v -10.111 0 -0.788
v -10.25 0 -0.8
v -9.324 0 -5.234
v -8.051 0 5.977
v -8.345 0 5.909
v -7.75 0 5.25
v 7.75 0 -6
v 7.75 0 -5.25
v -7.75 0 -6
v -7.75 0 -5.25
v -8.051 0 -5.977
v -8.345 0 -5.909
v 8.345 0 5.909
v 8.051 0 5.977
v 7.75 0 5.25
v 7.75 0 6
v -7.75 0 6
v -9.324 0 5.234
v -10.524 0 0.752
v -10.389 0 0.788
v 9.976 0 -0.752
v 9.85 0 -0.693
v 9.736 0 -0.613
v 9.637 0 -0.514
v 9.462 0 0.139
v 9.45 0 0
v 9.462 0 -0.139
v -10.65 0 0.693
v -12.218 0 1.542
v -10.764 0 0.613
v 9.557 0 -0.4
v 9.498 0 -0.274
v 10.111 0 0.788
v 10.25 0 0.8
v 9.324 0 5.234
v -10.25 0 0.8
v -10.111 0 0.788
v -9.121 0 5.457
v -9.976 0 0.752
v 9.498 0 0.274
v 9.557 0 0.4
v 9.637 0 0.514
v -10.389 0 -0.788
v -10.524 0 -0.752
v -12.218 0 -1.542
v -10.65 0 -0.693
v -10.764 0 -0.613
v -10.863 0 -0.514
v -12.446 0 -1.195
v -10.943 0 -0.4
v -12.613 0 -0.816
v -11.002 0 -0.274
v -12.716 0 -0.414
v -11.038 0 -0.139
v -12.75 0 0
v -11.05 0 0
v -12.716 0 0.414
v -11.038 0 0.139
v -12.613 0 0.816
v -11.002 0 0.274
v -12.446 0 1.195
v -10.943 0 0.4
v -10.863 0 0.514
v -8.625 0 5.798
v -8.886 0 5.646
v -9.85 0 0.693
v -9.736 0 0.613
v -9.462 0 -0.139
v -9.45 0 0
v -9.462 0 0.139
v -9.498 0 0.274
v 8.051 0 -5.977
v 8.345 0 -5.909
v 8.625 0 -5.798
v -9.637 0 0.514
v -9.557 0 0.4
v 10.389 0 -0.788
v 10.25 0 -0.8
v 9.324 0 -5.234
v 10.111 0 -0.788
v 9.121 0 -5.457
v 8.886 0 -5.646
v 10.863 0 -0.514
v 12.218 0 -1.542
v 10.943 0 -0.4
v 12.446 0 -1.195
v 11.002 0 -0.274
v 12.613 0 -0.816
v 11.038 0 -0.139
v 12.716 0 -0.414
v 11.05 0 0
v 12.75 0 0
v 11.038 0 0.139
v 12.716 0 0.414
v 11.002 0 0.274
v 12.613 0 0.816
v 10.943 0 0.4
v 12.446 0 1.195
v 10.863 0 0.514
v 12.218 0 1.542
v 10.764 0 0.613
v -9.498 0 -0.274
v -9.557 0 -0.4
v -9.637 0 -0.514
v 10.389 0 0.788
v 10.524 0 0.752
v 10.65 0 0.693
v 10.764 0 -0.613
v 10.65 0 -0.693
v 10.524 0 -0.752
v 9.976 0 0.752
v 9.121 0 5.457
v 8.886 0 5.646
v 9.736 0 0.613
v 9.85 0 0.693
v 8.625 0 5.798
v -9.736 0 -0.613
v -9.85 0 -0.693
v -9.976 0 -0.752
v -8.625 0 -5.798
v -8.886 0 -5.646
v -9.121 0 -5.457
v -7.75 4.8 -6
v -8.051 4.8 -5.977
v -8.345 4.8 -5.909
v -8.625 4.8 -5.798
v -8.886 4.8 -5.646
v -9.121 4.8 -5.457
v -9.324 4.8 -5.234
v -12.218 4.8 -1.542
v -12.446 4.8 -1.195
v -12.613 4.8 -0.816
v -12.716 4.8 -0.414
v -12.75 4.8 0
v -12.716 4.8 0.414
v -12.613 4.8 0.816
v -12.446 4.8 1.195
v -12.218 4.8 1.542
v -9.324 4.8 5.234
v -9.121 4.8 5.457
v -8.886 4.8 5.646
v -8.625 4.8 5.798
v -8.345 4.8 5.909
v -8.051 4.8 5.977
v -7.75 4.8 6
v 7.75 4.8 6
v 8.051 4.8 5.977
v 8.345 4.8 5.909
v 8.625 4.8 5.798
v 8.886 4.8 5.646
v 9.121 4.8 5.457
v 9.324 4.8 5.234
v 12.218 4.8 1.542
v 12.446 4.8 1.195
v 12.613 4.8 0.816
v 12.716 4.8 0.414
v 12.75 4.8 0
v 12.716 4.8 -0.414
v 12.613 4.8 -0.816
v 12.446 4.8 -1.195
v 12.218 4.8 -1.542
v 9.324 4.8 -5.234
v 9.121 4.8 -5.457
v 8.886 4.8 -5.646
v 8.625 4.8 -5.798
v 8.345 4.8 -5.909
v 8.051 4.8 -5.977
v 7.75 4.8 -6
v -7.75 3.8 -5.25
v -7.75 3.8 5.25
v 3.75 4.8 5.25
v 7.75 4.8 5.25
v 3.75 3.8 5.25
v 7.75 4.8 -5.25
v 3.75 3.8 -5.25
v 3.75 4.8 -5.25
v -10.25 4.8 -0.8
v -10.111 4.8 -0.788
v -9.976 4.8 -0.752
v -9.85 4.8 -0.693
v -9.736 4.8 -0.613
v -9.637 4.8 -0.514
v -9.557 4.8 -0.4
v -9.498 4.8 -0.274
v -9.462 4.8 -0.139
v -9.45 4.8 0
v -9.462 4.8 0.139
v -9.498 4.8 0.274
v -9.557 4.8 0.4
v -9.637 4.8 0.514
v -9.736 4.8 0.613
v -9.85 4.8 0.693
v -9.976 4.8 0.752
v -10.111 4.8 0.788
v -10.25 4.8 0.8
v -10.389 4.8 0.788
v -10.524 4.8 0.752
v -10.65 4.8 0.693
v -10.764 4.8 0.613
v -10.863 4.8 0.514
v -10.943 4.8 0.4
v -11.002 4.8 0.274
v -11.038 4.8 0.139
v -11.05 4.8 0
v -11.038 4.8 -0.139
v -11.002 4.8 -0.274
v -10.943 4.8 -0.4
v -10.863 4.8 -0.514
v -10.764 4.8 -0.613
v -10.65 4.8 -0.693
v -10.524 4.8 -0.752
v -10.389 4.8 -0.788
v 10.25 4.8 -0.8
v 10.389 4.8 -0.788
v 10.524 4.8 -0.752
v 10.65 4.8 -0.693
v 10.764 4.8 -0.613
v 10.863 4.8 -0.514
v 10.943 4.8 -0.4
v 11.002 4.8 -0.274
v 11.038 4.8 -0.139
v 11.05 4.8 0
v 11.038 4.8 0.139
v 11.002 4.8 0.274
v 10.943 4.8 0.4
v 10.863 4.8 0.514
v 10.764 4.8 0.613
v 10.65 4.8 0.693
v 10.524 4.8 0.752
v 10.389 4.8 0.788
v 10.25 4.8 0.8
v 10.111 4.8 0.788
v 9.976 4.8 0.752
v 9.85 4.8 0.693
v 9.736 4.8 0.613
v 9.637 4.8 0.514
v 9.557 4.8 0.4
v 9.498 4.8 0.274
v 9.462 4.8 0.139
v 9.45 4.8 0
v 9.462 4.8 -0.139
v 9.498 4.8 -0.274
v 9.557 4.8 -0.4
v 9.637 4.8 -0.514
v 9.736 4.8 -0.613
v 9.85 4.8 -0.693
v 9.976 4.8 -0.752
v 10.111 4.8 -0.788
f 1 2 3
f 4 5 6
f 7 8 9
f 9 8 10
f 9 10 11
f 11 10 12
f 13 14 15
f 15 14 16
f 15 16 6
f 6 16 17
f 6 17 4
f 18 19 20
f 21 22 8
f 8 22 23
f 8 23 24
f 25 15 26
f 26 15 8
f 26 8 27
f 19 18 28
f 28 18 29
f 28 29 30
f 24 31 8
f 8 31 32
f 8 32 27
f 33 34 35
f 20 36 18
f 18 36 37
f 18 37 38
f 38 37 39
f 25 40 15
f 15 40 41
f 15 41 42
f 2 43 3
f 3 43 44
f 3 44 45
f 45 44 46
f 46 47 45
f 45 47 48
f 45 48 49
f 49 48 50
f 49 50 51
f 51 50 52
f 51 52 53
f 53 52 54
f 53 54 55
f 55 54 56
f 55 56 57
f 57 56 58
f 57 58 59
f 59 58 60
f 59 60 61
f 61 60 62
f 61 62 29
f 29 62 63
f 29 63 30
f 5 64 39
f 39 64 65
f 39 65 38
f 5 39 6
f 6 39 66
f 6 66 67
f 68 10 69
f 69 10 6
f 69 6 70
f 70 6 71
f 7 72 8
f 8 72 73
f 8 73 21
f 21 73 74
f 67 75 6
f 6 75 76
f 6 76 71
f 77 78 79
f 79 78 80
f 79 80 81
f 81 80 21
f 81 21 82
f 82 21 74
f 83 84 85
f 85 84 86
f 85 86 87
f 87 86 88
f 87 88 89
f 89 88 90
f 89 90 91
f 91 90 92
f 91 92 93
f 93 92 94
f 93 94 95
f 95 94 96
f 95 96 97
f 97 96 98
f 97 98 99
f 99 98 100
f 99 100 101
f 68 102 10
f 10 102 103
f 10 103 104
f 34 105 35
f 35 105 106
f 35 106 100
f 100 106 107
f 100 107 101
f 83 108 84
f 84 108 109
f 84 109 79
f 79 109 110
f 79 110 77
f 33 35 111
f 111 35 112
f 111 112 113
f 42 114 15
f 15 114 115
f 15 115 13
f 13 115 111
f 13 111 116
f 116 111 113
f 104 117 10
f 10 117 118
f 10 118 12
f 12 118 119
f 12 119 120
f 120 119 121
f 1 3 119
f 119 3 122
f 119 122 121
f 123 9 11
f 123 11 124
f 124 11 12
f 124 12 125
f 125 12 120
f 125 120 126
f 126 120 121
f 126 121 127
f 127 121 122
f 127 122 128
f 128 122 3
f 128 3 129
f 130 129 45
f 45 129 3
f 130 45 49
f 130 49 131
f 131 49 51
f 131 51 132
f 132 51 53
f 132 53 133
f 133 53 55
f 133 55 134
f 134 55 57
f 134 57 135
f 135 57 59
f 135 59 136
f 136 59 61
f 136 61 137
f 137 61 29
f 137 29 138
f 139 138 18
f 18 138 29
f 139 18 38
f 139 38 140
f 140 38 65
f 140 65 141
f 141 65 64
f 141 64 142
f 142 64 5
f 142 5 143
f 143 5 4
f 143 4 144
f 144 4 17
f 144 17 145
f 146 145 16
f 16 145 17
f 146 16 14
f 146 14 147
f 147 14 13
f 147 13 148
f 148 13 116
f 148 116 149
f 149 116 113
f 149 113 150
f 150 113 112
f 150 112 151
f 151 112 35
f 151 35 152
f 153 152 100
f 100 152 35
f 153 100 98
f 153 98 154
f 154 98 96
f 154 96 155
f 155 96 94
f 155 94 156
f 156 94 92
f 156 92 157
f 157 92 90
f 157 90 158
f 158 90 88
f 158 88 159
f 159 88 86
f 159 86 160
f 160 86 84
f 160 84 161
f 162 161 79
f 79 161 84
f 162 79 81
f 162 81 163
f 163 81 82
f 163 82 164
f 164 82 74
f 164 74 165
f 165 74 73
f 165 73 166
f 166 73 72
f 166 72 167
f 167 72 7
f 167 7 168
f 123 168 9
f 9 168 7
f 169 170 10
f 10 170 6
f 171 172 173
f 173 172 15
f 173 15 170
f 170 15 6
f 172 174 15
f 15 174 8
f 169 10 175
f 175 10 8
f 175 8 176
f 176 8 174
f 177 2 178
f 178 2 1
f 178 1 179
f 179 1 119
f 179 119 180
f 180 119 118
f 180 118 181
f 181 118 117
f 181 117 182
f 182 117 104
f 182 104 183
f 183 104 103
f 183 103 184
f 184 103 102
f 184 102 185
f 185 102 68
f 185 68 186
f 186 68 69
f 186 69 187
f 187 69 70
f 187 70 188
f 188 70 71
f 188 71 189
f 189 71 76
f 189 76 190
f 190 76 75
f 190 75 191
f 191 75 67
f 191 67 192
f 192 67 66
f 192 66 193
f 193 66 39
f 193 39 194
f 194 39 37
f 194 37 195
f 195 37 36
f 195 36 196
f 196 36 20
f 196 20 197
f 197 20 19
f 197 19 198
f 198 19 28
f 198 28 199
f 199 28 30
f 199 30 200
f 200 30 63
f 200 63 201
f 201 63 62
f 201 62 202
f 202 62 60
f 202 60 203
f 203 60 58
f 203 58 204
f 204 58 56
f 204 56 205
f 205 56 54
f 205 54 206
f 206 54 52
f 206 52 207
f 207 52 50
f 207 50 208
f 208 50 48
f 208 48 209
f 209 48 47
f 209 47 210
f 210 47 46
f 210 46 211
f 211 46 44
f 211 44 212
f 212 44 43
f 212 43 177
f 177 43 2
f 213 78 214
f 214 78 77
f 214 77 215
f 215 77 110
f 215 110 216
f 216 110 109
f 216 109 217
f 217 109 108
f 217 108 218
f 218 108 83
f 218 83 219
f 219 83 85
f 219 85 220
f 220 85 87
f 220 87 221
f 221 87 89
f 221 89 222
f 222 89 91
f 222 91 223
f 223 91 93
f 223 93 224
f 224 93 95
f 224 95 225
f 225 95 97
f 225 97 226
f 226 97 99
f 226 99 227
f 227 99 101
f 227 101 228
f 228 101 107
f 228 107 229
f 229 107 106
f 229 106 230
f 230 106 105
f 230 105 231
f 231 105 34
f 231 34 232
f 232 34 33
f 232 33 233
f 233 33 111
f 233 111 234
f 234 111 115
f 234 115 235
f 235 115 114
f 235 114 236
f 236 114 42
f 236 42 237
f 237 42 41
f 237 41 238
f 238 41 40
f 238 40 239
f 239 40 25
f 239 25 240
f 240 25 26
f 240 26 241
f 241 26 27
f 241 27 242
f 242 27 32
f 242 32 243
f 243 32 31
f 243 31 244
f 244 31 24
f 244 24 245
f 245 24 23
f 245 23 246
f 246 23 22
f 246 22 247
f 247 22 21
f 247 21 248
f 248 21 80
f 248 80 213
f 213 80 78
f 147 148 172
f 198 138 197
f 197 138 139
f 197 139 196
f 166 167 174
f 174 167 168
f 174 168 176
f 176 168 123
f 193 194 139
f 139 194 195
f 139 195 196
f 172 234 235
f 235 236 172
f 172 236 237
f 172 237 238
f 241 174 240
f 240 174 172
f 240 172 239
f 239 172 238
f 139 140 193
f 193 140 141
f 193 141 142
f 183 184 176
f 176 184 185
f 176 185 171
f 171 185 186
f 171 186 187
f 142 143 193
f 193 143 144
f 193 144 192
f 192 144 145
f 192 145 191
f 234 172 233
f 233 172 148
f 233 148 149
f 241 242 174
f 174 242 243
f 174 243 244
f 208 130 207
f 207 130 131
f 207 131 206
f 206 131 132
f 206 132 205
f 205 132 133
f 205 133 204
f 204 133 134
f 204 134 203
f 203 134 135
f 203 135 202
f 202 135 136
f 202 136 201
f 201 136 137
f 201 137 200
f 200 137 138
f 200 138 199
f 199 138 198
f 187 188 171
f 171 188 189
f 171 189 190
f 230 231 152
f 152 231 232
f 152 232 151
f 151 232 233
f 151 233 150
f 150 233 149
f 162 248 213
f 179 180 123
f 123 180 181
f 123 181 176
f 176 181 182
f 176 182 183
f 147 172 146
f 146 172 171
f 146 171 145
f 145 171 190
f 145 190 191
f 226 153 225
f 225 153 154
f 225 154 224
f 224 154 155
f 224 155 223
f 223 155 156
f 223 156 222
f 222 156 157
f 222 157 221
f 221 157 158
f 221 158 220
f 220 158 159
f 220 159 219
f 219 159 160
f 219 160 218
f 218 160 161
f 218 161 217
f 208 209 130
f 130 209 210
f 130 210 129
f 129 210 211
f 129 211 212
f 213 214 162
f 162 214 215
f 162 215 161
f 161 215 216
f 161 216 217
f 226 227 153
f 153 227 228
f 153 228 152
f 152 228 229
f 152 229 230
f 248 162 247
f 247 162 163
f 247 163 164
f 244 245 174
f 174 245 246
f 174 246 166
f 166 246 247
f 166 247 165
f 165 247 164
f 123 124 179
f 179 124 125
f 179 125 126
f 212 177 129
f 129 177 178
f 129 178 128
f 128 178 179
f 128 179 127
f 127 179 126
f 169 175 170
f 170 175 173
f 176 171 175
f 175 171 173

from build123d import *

# Parameters (mm, degrees)
SKETCH1_R           = 0.8
SKETCH1_W           = 15.5
SKETCH1_H           = 10.5
BOSS_EXTRUDE1_DEPTH = 3.8
SKETCH2_R           = 0.8
SKETCH2_W           = 4
SKETCH2_H           = 10.5
BOSS_EXTRUDE2_DEPTH = 1


with BuildPart() as part:
    # Sketch1 → Boss-Extrude1 (new body)
    with BuildSketch(Plane(origin=(0, 0, 0), x_dir=(1, 0, 0), z_dir=(0, 1, 0))):
        with BuildLine():
            Line((-7.75, 6), (7.75, 6))
            ThreePointArc((7.75, 6), (8.62532777, 5.798277313), (9.324082071, 5.233801294))
            Line((9.324082071, 5.233801294), (12.217602589, 1.542251618))
            ThreePointArc((12.217602589, 1.542251618), (12.75, 0), (12.217602589, -1.542251618))
            Line((12.217602589, -1.542251618), (9.324082071, -5.233801294))
            ThreePointArc((9.324082071, -5.233801294), (8.62532777, -5.798277313), (7.75, -6))
            Line((7.75, -6), (-7.75, -6))
            ThreePointArc((-7.75, -6), (-8.62532777, -5.798277313), (-9.324082071, -5.233801294))
            Line((-9.324082071, -5.233801294), (-12.217602589, -1.542251618))
            ThreePointArc((-12.217602589, -1.542251618), (-12.75, 0), (-12.217602589, 1.542251618))
            Line((-12.217602589, 1.542251618), (-9.324082071, 5.233801294))
            ThreePointArc((-9.324082071, 5.233801294), (-8.62532777, 5.798277313), (-7.75, 6))
        make_face()
        with Locations((10.25, 0)):
            Circle(SKETCH1_R, mode=Mode.SUBTRACT)
        with Locations((-10.25, 0)):
            Circle(SKETCH1_R, mode=Mode.SUBTRACT)
        Rectangle(SKETCH1_W, SKETCH1_H, mode=Mode.SUBTRACT)
    extrude(amount=BOSS_EXTRUDE1_DEPTH)

    # Sketch2 → Boss-Extrude2 (add)
    with BuildSketch(Plane(origin=(0, 3.8, 0), x_dir=(1, 0, 0), z_dir=(0, 1, 0))):
        with BuildLine():
            Line((-9.324082071, 5.233801294), (-12.217602589, 1.542251618))
            ThreePointArc((-12.217602589, 1.542251618), (-12.75, 0), (-12.217602589, -1.542251618))
            Line((-12.217602589, -1.542251618), (-9.324082071, -5.233801294))
            ThreePointArc((-9.324082071, -5.233801294), (-8.62532777, -5.798277313), (-7.75, -6))
            Line((-7.75, -6), (7.75, -6))
            ThreePointArc((7.75, -6), (8.62532777, -5.798277313), (9.324082071, -5.233801294))
            Line((9.324082071, -5.233801294), (12.217602589, -1.542251618))
            ThreePointArc((12.217602589, -1.542251618), (12.75, 0), (12.217602589, 1.542251618))
            Line((12.217602589, 1.542251618), (9.324082071, 5.233801294))
            ThreePointArc((9.324082071, 5.233801294), (8.62532777, 5.798277313), (7.75, 6))
            Line((7.75, 6), (-7.75, 6))
            ThreePointArc((-7.75, 6), (-8.62532777, 5.798277313), (-9.324082071, 5.233801294))
        make_face()
        with Locations((10.25, 0)):
            Circle(SKETCH2_R, mode=Mode.SUBTRACT)
        with Locations((-10.25, 0)):
            Circle(SKETCH2_R, mode=Mode.SUBTRACT)
        with Locations((5.75, 0)):
            Rectangle(SKETCH2_W, SKETCH2_H, mode=Mode.SUBTRACT)
    extrude(amount=BOSS_EXTRUDE2_DEPTH)


solid = part.part
